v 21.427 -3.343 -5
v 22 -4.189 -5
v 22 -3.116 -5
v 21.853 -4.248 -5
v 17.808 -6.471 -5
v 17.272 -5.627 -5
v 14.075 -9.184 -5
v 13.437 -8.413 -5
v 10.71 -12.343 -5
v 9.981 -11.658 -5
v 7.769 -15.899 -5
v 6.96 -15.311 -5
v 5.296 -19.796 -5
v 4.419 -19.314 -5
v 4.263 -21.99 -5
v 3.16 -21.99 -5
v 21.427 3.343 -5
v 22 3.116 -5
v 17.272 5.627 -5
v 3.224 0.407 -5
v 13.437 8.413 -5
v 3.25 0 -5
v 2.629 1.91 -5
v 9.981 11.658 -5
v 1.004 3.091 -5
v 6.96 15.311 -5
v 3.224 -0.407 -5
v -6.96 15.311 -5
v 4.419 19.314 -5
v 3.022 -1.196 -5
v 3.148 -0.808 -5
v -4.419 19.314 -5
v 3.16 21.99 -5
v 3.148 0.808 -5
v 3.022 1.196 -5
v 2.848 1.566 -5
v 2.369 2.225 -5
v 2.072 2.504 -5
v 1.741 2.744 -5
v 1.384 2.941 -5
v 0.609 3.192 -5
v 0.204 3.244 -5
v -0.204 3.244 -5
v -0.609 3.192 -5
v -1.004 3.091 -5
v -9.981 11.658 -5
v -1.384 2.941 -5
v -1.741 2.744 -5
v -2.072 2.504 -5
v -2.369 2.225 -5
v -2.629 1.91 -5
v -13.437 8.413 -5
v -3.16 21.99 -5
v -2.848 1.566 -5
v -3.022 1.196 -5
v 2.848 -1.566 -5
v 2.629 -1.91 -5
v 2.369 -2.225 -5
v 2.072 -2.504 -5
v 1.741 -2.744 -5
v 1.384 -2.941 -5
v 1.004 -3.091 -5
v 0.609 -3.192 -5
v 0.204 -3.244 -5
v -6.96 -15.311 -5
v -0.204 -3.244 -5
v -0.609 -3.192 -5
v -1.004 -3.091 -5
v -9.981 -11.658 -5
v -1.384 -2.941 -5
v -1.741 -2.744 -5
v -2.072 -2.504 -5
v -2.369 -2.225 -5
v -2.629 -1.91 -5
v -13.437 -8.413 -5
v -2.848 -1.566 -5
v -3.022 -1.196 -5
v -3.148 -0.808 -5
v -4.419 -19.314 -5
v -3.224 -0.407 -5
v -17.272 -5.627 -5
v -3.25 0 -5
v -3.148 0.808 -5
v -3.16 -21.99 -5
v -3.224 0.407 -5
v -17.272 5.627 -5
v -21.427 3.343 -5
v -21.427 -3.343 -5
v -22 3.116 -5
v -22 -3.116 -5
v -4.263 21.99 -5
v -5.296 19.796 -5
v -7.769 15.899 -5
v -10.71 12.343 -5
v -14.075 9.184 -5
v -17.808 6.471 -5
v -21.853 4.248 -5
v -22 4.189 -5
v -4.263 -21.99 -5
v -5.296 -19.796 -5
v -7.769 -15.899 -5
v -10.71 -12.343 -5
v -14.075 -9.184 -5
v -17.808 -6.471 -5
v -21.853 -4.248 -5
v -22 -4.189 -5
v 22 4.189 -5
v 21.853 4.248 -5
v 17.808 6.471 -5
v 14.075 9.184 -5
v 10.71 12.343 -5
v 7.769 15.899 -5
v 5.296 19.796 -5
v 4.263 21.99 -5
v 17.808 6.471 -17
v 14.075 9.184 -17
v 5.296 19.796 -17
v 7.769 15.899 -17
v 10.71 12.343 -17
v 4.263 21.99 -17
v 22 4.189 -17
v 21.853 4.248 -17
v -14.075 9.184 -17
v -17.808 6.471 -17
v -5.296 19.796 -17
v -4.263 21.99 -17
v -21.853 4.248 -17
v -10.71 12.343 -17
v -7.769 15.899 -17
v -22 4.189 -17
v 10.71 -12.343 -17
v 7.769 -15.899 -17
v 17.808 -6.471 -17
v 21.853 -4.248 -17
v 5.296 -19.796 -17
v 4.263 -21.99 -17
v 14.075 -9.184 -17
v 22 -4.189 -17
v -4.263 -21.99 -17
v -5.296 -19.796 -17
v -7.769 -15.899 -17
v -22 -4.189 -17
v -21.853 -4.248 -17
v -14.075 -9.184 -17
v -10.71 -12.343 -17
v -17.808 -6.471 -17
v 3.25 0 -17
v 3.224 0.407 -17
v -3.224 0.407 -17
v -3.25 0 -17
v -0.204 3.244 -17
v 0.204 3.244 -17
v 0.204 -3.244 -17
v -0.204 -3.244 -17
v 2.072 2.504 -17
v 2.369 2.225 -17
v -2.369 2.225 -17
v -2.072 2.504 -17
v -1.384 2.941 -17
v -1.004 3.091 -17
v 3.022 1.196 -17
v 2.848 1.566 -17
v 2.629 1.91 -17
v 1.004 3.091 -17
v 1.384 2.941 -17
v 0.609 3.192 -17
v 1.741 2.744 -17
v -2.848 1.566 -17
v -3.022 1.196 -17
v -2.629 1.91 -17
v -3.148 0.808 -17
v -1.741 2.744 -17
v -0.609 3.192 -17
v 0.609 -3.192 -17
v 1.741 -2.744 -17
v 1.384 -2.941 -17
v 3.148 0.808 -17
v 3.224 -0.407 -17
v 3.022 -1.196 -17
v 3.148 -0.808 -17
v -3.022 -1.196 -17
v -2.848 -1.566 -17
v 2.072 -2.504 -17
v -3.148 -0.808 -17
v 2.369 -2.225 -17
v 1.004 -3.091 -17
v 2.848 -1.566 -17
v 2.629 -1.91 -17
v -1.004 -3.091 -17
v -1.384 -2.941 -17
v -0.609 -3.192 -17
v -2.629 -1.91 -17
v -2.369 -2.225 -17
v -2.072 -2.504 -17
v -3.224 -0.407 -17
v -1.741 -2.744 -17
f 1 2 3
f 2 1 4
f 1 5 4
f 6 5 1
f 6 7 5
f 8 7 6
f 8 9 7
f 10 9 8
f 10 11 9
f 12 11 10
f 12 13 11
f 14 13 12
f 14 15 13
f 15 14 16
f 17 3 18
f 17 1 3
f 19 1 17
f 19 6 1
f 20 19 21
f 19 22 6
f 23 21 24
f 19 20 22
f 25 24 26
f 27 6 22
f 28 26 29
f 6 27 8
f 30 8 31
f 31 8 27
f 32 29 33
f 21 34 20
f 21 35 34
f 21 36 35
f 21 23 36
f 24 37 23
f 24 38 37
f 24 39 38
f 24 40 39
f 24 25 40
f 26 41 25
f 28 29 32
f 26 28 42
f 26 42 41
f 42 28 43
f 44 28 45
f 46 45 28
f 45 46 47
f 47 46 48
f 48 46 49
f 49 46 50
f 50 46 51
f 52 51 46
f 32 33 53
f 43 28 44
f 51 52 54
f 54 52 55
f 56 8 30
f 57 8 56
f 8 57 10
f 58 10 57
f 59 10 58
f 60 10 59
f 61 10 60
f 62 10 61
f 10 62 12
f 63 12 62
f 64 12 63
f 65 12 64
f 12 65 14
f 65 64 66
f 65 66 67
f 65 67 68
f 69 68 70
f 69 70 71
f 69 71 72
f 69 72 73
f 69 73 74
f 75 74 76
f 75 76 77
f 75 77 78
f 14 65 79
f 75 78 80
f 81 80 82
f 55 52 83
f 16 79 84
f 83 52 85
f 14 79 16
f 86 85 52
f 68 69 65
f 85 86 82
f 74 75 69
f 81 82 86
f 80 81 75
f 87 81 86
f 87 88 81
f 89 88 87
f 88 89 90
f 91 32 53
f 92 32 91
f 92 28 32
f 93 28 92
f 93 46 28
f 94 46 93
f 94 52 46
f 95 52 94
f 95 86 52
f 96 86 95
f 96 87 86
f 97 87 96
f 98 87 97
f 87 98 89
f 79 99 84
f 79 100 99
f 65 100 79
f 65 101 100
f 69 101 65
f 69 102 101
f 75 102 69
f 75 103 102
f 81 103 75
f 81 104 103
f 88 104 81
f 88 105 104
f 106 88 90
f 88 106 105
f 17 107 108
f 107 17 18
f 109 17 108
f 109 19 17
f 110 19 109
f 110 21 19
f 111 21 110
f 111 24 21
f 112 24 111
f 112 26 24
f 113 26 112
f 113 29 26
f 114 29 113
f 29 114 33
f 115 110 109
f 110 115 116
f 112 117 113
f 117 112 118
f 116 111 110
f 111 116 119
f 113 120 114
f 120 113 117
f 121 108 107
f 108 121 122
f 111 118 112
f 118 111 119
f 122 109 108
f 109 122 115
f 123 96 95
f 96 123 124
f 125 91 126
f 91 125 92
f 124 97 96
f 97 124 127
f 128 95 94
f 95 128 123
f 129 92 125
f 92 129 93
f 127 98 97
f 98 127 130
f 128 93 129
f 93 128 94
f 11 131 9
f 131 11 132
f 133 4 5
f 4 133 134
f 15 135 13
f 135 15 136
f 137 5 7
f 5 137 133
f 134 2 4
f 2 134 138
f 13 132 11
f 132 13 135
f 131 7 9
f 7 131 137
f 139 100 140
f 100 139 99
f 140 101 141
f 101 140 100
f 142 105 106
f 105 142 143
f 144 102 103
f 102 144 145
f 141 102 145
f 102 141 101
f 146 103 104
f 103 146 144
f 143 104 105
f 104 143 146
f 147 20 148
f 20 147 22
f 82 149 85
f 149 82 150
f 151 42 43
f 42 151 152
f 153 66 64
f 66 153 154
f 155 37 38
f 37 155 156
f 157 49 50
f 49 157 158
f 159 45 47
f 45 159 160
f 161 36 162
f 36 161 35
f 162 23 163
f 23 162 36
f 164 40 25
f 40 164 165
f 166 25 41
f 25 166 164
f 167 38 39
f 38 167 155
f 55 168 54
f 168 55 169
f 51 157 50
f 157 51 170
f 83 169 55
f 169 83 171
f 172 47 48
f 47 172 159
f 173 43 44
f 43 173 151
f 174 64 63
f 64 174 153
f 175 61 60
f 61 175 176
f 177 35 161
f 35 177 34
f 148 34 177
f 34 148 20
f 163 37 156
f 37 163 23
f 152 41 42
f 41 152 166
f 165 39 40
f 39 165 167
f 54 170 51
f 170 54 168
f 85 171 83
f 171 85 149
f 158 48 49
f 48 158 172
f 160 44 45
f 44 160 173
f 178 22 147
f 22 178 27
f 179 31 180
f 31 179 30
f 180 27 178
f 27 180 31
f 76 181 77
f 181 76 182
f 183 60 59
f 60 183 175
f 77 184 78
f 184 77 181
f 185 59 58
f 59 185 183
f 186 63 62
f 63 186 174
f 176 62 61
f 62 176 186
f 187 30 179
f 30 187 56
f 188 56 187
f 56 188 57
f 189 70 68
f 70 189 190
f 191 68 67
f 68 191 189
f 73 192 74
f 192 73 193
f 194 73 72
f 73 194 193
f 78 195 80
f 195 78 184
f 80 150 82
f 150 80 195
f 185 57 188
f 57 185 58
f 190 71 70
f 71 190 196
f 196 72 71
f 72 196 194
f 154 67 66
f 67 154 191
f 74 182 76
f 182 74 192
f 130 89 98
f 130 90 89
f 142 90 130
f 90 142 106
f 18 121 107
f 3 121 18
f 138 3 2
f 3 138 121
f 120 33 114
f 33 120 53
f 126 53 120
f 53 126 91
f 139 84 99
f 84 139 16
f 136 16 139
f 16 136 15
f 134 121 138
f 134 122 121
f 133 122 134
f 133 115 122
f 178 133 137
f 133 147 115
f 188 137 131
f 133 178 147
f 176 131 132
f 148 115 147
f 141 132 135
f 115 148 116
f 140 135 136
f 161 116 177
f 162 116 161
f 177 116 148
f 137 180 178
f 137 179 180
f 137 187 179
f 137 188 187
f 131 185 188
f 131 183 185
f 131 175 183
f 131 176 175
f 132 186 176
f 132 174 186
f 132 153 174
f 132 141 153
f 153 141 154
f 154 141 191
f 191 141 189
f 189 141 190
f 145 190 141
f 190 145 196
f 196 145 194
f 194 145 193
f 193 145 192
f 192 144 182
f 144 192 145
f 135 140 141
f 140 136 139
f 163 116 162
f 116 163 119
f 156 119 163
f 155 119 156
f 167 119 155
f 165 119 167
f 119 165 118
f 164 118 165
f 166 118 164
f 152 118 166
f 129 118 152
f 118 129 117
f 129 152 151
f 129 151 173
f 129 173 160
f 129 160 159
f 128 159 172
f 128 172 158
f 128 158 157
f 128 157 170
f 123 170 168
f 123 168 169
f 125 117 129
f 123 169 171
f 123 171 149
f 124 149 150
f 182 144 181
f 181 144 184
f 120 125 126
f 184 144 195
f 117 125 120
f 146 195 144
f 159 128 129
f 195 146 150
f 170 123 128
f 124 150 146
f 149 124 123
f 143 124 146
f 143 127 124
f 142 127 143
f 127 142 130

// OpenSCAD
$fn = 50;


difference() {
	union() {
		translate(v = [0, 0, -17]) {
			hull() {
				translate(v = [-17.0000000000, 17.0000000000, 0]) {
					cylinder(h = 12, r = 5);
				}
				translate(v = [17.0000000000, 17.0000000000, 0]) {
					cylinder(h = 12, r = 5);
				}
				translate(v = [-17.0000000000, -17.0000000000, 0]) {
					cylinder(h = 12, r = 5);
				}
				translate(v = [17.0000000000, -17.0000000000, 0]) {
					cylinder(h = 12, r = 5);
				}
			}
		}
	}
	union() {
		translate(v = [37.5000000000, 37.5000000000, -5]) {
			rotate(a = [0, 0, 0]) {
				difference() {
					union() {
						cylinder(h = 5, r = 37.7500000000);
					}
					union() {
						cylinder(h = 5, r = 36.7500000000);
					}
				}
			}
		}
		#translate(v = [37.5000000000, 37.5000000000, -5]) {
			rotate(a = [0, 0, 0]) {
				difference() {
					union() {
						cylinder(h = 1, r = 36.7500000000);
					}
					union() {
						cylinder(h = 1, r = 33.7500000000);
					}
				}
			}
		}
		translate(v = [37.5000000000, 37.5000000000, -109]) {
			rotate(a = [0, 0, 0]) {
				difference() {
					union() {
						cylinder(h = 3, r = 36.7500000000);
					}
					union() {
						cylinder(h = 3, r = 35.7500000000);
					}
				}
			}
		}
		translate(v = [-37.5000000000, 37.5000000000, -5]) {
			rotate(a = [0, 0, 0]) {
				difference() {
					union() {
						cylinder(h = 5, r = 37.7500000000);
					}
					union() {
						cylinder(h = 5, r = 36.7500000000);
					}
				}
			}
		}
		#translate(v = [-37.5000000000, 37.5000000000, -5]) {
			rotate(a = [0, 0, 0]) {
				difference() {
					union() {
						cylinder(h = 1, r = 36.7500000000);
					}
					union() {
						cylinder(h = 1, r = 33.7500000000);
					}
				}
			}
		}
		translate(v = [-37.5000000000, 37.5000000000, -109]) {
			rotate(a = [0, 0, 0]) {
				difference() {
					union() {
						cylinder(h = 3, r = 36.7500000000);
					}
					union() {
						cylinder(h = 3, r = 35.7500000000);
					}
				}
			}
		}
		translate(v = [37.5000000000, -37.5000000000, -5]) {
			rotate(a = [0, 0, 0]) {
				difference() {
					union() {
						cylinder(h = 5, r = 37.7500000000);
					}
					union() {
						cylinder(h = 5, r = 36.7500000000);
					}
				}
			}
		}
		#translate(v = [37.5000000000, -37.5000000000, -5]) {
			rotate(a = [0, 0, 0]) {
				difference() {
					union() {
						cylinder(h = 1, r = 36.7500000000);
					}
					union() {
						cylinder(h = 1, r = 33.7500000000);
					}
				}
			}
		}
		translate(v = [37.5000000000, -37.5000000000, -109]) {
			rotate(a = [0, 0, 0]) {
				difference() {
					union() {
						cylinder(h = 3, r = 36.7500000000);
					}
					union() {
						cylinder(h = 3, r = 35.7500000000);
					}
				}
			}
		}
		translate(v = [-37.5000000000, -37.5000000000, -5]) {
			rotate(a = [0, 0, 0]) {
				difference() {
					union() {
						cylinder(h = 5, r = 37.7500000000);
					}
					union() {
						cylinder(h = 5, r = 36.7500000000);
					}
				}
			}
		}
		#translate(v = [-37.5000000000, -37.5000000000, -5]) {
			rotate(a = [0, 0, 0]) {
				difference() {
					union() {
						cylinder(h = 1, r = 36.7500000000);
					}
					union() {
						cylinder(h = 1, r = 33.7500000000);
					}
				}
			}
		}
		translate(v = [-37.5000000000, -37.5000000000, -109]) {
			rotate(a = [0, 0, 0]) {
				difference() {
					union() {
						cylinder(h = 3, r = 36.7500000000);
					}
					union() {
						cylinder(h = 3, r = 35.7500000000);
					}
				}
			}
		}
		translate(v = [37.5000000000, 37.5000000000, -106.0000000000]) {
			cylinder(h = 101, r = 36.7500000000);
		}
		translate(v = [37.5000000000, 37.5000000000, -106.5000000000]) {
			cylinder(h = 1, r = 36.7500000000);
		}
		translate(v = [-37.5000000000, 37.5000000000, -106.0000000000]) {
			cylinder(h = 101, r = 36.7500000000);
		}
		translate(v = [-37.5000000000, 37.5000000000, -106.5000000000]) {
			cylinder(h = 1, r = 36.7500000000);
		}
		translate(v = [37.5000000000, -37.5000000000, -106.0000000000]) {
			cylinder(h = 101, r = 36.7500000000);
		}
		translate(v = [37.5000000000, -37.5000000000, -106.5000000000]) {
			cylinder(h = 1, r = 36.7500000000);
		}
		translate(v = [-37.5000000000, -37.5000000000, -106.0000000000]) {
			cylinder(h = 101, r = 36.7500000000);
		}
		translate(v = [-37.5000000000, -37.5000000000, -106.5000000000]) {
			cylinder(h = 1, r = 36.7500000000);
		}
		translate(v = [-16.5000000000, -16.5000000000, -125.0000000000]) {
			cylinder(h = 250, r = 3.2500000000);
		}
		translate(v = [16.5000000000, -16.5000000000, -125.0000000000]) {
			cylinder(h = 250, r = 3.2500000000);
		}
		translate(v = [-16.5000000000, 16.5000000000, -125.0000000000]) {
			cylinder(h = 250, r = 3.2500000000);
		}
		translate(v = [16.5000000000, 16.5000000000, -125.0000000000]) {
			cylinder(h = 250, r = 3.2500000000);
		}
		translate(v = [0.0000000000, 0.0000000000, -125.0000000000]) {
			cylinder(h = 250, r = 3.2500000000);
		}
	}
}
